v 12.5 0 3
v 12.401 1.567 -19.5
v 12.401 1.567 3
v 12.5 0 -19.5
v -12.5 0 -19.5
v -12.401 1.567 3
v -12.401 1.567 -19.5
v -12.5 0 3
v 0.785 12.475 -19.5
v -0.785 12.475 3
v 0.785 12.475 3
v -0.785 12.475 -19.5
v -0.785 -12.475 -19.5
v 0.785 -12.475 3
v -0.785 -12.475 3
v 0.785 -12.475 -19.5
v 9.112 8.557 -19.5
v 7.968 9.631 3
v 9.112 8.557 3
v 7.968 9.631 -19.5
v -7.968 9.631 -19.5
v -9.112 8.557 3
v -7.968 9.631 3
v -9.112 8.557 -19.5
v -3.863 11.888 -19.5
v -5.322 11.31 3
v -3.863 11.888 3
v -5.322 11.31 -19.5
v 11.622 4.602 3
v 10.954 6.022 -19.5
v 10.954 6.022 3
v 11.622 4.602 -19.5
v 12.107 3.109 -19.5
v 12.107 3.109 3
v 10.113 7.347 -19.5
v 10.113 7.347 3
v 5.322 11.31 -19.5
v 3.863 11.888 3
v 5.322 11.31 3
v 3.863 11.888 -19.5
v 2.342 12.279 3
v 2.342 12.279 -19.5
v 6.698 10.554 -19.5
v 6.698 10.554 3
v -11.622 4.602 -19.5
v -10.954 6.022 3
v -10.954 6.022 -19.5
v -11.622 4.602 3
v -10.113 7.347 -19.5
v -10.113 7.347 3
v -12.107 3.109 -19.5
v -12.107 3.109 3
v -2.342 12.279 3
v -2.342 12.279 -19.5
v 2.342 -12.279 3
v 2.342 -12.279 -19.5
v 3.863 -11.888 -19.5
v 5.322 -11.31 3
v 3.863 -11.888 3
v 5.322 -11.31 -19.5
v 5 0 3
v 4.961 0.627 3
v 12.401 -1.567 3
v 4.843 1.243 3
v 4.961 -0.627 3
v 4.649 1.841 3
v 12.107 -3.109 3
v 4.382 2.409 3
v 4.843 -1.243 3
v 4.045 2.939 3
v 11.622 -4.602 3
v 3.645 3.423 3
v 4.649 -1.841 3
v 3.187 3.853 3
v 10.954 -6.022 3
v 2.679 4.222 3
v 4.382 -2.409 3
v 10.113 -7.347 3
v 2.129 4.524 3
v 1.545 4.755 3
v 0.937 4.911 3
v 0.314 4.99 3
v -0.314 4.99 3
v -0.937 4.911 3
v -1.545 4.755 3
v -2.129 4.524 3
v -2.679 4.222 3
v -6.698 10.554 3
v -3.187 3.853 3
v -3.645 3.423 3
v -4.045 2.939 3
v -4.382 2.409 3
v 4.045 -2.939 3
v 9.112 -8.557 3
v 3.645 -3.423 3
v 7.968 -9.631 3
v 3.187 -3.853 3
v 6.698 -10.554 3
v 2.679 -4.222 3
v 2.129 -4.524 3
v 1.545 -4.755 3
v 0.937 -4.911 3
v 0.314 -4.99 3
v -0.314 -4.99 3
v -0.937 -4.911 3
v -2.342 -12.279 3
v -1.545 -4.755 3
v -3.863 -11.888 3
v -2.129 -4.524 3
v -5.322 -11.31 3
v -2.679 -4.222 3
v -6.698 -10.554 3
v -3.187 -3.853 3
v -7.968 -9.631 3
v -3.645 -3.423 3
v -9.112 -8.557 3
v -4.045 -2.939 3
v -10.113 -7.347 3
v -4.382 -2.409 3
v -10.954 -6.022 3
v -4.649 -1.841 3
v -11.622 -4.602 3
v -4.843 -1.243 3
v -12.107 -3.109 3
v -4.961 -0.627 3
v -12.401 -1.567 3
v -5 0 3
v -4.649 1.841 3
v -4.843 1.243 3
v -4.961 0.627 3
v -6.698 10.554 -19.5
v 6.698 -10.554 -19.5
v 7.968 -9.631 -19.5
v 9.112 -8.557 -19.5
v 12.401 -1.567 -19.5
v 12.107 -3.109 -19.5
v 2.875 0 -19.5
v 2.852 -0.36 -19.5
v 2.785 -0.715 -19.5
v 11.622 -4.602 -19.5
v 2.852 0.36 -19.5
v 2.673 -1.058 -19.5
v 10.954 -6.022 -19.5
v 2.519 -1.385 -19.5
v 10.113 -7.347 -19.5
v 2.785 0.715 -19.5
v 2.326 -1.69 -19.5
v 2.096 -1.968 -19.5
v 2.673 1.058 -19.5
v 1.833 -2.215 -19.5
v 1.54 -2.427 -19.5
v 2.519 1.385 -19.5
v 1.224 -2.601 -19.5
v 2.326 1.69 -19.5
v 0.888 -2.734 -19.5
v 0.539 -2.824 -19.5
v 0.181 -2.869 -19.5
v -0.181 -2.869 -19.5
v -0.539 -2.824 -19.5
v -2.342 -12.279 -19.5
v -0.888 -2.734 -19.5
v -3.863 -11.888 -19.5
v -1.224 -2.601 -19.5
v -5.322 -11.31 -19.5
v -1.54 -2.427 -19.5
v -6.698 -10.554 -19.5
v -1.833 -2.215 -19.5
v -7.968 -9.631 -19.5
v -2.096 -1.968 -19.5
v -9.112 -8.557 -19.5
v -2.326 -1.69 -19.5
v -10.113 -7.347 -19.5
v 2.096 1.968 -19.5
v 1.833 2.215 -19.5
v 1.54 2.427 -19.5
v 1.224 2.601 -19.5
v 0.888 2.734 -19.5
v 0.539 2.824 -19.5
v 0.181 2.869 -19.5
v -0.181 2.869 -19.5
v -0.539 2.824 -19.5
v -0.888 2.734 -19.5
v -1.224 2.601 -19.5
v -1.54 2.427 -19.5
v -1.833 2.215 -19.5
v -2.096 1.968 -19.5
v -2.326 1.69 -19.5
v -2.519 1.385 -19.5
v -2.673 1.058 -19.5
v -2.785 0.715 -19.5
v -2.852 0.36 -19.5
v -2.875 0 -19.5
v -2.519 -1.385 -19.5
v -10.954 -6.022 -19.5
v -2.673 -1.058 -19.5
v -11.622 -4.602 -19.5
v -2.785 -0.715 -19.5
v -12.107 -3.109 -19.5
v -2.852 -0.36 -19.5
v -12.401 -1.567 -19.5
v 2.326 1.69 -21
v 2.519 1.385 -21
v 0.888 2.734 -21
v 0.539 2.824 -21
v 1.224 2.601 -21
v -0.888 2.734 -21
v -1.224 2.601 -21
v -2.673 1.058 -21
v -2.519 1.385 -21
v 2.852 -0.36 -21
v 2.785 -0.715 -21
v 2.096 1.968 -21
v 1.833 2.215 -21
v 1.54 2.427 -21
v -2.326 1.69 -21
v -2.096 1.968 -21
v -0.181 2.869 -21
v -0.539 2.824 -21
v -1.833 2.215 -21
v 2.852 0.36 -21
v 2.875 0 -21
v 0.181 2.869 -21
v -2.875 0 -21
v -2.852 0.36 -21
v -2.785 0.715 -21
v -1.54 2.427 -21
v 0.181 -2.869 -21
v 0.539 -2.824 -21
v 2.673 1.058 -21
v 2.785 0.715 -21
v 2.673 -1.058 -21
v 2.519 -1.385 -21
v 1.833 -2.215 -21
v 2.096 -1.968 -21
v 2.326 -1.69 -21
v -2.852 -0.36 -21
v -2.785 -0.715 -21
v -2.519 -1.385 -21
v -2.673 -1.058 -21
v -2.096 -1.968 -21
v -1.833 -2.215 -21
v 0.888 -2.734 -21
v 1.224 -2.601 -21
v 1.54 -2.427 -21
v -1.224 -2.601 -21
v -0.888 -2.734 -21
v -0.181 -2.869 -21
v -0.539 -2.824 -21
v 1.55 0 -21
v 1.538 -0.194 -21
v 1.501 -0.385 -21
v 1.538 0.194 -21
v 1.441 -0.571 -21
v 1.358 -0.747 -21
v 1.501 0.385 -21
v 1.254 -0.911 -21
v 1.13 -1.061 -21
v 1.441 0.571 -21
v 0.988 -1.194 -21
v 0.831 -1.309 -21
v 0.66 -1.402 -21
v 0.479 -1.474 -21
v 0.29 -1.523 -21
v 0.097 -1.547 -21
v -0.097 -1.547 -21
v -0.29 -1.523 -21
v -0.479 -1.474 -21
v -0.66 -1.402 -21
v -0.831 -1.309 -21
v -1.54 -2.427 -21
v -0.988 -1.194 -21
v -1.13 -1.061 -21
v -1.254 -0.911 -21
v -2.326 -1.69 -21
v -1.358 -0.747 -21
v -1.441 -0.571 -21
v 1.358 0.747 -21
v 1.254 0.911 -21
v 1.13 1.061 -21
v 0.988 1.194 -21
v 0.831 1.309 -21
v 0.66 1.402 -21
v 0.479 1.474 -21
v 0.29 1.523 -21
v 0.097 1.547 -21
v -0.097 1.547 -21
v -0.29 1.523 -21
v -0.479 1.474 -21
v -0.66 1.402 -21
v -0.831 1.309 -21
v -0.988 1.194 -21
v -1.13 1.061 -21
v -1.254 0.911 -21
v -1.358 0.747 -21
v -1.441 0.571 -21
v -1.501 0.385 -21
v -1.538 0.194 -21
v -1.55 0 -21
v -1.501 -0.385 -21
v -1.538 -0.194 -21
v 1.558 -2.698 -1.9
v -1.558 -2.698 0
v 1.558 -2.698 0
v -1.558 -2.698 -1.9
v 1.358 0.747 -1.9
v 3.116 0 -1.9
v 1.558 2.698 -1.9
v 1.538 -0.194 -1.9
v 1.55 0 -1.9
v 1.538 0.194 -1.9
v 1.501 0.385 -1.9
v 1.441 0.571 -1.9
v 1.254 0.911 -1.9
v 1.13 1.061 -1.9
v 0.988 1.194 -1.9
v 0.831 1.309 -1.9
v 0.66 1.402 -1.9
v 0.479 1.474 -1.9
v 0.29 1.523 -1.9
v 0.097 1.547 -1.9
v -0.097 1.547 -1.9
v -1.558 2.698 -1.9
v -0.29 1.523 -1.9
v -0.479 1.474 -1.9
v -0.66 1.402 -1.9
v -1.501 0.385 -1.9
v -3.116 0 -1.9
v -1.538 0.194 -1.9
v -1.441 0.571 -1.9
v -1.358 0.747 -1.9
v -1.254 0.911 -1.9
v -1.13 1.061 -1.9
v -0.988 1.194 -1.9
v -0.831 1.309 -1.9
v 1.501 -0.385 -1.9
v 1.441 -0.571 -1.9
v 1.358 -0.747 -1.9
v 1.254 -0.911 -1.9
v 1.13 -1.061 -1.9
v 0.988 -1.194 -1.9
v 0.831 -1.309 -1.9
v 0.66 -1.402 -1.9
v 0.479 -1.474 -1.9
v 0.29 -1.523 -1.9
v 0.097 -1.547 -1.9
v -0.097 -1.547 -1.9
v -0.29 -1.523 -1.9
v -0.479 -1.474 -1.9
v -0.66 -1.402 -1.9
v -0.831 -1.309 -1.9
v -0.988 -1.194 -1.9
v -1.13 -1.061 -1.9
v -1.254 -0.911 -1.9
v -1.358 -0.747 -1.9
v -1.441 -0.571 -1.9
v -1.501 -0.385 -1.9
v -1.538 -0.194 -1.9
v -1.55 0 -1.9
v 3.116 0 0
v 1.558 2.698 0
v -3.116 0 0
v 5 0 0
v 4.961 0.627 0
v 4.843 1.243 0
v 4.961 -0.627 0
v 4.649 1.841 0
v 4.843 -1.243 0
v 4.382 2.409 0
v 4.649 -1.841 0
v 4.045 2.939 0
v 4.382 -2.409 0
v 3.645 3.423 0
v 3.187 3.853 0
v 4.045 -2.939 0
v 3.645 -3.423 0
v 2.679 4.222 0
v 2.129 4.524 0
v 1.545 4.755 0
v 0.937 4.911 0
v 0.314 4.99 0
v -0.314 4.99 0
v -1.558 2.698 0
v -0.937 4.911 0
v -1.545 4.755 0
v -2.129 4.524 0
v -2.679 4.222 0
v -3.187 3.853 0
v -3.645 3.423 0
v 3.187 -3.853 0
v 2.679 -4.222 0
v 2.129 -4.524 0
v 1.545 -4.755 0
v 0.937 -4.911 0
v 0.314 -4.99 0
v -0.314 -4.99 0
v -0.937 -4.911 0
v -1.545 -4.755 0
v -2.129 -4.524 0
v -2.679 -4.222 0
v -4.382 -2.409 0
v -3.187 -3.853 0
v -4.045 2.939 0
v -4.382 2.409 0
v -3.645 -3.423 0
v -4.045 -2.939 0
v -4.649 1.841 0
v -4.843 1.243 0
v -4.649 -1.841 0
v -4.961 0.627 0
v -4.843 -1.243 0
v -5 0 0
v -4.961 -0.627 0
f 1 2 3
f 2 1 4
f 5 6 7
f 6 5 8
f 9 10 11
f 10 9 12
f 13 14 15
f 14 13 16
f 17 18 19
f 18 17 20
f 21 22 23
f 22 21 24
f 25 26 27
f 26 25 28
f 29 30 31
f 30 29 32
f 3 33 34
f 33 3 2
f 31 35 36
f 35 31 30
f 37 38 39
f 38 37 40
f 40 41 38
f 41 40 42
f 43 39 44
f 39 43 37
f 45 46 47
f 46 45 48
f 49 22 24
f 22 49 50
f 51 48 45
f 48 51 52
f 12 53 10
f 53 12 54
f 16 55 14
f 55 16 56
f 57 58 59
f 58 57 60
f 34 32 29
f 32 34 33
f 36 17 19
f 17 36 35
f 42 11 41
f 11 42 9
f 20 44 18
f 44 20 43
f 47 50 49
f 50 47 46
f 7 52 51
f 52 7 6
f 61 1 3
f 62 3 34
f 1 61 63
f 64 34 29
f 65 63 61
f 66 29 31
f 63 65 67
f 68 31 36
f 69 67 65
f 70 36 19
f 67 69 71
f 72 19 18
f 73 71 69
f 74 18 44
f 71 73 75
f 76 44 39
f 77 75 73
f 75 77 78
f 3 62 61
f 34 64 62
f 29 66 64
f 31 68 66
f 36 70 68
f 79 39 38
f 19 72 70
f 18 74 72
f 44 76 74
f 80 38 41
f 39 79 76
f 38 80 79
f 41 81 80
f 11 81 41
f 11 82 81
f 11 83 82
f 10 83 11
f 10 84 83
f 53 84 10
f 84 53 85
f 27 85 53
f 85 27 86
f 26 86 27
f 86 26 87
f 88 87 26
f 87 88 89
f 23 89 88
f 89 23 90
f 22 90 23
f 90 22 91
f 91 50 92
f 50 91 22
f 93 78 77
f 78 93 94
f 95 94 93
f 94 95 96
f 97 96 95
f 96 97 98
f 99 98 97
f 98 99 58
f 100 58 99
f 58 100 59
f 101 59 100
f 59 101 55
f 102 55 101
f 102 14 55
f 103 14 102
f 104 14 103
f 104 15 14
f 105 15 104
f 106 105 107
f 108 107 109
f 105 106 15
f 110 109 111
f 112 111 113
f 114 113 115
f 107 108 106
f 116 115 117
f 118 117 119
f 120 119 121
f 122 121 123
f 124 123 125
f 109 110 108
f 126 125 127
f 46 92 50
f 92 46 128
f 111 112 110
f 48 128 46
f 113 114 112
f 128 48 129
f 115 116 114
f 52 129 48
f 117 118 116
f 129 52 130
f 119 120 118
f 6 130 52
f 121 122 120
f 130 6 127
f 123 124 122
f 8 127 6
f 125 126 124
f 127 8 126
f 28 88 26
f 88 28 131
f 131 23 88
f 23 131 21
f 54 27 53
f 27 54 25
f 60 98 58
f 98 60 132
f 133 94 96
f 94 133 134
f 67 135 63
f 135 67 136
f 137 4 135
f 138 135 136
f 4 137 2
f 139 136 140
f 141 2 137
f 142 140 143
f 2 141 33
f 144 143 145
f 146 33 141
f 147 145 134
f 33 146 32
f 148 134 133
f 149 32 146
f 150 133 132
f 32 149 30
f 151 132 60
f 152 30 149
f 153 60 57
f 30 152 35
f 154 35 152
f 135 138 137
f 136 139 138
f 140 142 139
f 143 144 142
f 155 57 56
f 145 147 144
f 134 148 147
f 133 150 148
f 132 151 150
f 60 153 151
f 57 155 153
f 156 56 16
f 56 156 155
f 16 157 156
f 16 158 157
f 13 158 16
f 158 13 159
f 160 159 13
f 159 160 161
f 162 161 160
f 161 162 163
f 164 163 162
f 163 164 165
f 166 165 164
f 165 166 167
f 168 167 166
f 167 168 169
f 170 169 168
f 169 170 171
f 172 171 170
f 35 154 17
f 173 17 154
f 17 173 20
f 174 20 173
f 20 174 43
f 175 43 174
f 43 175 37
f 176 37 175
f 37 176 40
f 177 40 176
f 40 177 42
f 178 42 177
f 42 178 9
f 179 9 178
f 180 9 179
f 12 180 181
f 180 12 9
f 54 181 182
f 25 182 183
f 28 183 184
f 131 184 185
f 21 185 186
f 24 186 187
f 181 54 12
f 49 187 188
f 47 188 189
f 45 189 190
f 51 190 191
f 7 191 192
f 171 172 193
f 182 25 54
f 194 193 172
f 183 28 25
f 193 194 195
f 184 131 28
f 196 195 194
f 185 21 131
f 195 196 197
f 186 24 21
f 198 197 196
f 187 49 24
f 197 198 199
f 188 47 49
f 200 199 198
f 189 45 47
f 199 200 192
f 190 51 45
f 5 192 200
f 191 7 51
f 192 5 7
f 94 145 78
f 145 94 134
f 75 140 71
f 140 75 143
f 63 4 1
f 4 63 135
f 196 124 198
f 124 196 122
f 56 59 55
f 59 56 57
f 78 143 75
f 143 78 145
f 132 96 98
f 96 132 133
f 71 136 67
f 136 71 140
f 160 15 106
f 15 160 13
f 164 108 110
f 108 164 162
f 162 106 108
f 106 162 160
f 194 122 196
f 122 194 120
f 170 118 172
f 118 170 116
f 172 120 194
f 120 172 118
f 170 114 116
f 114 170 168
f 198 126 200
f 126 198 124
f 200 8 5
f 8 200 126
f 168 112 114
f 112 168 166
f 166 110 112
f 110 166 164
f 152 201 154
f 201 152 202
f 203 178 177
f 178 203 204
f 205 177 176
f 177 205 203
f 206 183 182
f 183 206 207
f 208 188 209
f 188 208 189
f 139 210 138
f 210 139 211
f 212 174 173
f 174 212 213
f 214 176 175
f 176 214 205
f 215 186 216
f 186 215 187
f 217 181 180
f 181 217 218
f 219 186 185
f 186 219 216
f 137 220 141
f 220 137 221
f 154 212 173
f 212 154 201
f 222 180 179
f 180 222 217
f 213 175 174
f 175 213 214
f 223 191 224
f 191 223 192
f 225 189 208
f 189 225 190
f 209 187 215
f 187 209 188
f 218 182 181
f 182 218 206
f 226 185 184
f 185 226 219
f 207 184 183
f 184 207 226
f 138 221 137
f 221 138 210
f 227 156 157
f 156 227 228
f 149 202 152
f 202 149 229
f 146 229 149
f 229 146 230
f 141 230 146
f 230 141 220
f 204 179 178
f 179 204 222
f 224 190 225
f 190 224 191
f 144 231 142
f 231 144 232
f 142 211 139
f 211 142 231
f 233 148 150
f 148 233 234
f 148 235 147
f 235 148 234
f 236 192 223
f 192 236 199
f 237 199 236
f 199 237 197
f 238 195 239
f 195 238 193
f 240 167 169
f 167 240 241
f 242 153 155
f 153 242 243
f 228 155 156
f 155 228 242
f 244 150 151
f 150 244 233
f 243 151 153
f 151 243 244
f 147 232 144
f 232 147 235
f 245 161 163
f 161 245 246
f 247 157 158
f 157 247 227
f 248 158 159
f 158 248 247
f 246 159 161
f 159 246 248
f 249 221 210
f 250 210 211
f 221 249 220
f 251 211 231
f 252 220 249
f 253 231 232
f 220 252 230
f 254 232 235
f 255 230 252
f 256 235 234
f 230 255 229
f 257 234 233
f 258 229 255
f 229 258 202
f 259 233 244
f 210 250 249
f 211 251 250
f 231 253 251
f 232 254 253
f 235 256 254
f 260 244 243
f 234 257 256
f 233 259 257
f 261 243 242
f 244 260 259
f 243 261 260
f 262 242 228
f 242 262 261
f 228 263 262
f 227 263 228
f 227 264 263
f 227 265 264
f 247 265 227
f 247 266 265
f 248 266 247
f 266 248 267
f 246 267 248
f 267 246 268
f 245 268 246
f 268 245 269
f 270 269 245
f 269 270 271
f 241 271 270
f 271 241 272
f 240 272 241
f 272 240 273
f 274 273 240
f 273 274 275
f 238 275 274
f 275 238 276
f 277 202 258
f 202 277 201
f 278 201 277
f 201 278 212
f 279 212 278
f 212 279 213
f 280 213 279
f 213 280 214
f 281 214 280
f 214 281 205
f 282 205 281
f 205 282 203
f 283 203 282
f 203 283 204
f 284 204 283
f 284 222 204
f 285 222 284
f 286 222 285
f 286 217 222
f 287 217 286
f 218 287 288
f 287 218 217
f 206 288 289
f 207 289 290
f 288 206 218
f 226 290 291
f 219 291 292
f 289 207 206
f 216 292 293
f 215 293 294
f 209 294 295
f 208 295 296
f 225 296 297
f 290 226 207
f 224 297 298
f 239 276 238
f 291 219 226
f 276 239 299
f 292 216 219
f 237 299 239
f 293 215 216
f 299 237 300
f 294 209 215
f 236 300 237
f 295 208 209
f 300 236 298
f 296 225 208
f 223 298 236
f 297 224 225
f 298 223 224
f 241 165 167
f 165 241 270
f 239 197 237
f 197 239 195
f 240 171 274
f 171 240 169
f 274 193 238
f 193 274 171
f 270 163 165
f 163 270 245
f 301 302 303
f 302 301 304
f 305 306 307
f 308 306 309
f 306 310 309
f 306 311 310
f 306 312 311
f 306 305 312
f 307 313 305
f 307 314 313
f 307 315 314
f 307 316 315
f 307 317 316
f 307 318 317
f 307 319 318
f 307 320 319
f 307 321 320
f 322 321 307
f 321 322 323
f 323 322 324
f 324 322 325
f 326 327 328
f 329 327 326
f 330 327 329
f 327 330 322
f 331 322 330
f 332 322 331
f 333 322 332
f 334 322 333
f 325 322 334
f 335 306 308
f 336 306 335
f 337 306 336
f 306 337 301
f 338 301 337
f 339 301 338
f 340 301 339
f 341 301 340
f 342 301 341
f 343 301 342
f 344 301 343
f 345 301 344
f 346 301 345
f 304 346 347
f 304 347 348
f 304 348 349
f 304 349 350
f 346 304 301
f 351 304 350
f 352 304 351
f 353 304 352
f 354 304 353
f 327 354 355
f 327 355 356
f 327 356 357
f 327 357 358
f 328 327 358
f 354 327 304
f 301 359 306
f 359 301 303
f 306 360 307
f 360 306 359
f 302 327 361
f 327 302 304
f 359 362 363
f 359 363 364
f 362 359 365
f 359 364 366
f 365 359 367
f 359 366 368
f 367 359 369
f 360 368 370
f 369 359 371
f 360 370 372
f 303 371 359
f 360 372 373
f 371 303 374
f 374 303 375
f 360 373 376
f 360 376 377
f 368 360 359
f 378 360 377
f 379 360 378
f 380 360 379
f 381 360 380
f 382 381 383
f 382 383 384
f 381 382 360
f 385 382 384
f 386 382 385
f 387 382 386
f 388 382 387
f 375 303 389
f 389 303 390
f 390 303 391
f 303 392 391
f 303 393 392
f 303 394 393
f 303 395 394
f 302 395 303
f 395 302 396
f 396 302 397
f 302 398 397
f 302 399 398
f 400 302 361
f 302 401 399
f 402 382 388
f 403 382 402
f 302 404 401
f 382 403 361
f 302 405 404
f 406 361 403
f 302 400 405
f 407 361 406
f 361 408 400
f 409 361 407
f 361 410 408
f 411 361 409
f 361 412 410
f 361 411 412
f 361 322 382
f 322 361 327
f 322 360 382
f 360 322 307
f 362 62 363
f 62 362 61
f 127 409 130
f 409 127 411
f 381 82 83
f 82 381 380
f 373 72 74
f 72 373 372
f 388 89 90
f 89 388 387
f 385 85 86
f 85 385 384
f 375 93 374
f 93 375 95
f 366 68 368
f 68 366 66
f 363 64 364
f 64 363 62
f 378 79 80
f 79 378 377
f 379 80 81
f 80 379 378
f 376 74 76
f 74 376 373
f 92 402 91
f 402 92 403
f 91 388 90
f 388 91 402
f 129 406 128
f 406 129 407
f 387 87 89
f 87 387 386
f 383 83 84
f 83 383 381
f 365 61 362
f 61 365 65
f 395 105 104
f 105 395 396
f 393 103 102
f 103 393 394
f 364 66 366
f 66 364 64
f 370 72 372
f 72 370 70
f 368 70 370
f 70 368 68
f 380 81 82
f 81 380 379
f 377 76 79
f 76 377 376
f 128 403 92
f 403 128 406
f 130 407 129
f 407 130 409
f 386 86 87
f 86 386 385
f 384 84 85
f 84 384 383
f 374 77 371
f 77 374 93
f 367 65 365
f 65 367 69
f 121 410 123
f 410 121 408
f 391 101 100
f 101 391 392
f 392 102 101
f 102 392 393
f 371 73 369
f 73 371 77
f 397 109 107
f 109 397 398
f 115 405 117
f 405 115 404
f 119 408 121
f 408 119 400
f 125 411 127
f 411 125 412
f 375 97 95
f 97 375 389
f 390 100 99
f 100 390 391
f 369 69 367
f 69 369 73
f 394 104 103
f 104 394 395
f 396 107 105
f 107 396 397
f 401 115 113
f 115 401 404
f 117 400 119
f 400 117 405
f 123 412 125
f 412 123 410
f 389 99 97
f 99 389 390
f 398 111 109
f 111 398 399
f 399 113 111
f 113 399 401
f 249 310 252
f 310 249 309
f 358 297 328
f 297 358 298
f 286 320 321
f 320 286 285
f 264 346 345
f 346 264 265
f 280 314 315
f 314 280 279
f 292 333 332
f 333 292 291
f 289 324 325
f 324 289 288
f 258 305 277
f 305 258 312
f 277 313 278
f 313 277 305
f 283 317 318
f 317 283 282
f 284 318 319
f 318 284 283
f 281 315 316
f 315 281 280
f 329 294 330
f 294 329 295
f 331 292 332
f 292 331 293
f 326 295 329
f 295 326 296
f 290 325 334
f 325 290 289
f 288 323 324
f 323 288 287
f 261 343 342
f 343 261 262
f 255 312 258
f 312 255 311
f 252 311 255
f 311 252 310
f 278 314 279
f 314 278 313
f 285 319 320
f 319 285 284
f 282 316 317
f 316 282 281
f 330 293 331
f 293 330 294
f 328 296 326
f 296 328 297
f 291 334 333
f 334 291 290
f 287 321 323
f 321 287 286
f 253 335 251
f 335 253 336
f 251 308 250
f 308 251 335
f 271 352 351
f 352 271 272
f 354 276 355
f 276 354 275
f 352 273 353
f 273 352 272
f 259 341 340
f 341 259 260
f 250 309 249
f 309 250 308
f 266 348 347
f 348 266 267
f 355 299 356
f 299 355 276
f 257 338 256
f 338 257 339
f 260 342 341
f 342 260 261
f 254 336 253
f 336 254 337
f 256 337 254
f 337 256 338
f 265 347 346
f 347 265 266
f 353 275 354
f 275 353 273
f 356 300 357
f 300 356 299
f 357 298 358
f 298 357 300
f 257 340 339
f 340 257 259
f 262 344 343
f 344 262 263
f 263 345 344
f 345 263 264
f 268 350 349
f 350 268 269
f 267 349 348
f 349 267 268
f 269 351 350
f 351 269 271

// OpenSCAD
$fn = 50;

difference() {
	union() {
		translate(v = [0, 0, -19.5]) {
			cylinder(h = 22.5, r = 12.5);
		}
		#translate(v = [0, 0, -21.0]) {
			cylinder(h = 21, r = 2.875);
		}
	}
	union() {
		translate(v = [0, 0, 0]) {
			rotate(a = [0, 0, 0]) {
				difference() {
					union() {
						translate(v = [0, 0, -1.9]) {
							linear_extrude(height = 1.9) {
								polygon(points = [[3.1158, 0.0], [1.5579000000000005, 2.698361953111554], [-1.5578999999999994, 2.6983619531115544], [-3.1158, 3.815754496783323e-16], [-1.5579000000000014, -2.6983619531115535], [1.557899999999998, -2.6983619531115552]]);
							}
						}
					}
					union();
				}
			}
		}
		#cylinder(h = 3, r = 5.0);
		#translate(v = [0, 0, -100.0]) {
			cylinder(h = 200, r = 1.55);
		}
	}
}
